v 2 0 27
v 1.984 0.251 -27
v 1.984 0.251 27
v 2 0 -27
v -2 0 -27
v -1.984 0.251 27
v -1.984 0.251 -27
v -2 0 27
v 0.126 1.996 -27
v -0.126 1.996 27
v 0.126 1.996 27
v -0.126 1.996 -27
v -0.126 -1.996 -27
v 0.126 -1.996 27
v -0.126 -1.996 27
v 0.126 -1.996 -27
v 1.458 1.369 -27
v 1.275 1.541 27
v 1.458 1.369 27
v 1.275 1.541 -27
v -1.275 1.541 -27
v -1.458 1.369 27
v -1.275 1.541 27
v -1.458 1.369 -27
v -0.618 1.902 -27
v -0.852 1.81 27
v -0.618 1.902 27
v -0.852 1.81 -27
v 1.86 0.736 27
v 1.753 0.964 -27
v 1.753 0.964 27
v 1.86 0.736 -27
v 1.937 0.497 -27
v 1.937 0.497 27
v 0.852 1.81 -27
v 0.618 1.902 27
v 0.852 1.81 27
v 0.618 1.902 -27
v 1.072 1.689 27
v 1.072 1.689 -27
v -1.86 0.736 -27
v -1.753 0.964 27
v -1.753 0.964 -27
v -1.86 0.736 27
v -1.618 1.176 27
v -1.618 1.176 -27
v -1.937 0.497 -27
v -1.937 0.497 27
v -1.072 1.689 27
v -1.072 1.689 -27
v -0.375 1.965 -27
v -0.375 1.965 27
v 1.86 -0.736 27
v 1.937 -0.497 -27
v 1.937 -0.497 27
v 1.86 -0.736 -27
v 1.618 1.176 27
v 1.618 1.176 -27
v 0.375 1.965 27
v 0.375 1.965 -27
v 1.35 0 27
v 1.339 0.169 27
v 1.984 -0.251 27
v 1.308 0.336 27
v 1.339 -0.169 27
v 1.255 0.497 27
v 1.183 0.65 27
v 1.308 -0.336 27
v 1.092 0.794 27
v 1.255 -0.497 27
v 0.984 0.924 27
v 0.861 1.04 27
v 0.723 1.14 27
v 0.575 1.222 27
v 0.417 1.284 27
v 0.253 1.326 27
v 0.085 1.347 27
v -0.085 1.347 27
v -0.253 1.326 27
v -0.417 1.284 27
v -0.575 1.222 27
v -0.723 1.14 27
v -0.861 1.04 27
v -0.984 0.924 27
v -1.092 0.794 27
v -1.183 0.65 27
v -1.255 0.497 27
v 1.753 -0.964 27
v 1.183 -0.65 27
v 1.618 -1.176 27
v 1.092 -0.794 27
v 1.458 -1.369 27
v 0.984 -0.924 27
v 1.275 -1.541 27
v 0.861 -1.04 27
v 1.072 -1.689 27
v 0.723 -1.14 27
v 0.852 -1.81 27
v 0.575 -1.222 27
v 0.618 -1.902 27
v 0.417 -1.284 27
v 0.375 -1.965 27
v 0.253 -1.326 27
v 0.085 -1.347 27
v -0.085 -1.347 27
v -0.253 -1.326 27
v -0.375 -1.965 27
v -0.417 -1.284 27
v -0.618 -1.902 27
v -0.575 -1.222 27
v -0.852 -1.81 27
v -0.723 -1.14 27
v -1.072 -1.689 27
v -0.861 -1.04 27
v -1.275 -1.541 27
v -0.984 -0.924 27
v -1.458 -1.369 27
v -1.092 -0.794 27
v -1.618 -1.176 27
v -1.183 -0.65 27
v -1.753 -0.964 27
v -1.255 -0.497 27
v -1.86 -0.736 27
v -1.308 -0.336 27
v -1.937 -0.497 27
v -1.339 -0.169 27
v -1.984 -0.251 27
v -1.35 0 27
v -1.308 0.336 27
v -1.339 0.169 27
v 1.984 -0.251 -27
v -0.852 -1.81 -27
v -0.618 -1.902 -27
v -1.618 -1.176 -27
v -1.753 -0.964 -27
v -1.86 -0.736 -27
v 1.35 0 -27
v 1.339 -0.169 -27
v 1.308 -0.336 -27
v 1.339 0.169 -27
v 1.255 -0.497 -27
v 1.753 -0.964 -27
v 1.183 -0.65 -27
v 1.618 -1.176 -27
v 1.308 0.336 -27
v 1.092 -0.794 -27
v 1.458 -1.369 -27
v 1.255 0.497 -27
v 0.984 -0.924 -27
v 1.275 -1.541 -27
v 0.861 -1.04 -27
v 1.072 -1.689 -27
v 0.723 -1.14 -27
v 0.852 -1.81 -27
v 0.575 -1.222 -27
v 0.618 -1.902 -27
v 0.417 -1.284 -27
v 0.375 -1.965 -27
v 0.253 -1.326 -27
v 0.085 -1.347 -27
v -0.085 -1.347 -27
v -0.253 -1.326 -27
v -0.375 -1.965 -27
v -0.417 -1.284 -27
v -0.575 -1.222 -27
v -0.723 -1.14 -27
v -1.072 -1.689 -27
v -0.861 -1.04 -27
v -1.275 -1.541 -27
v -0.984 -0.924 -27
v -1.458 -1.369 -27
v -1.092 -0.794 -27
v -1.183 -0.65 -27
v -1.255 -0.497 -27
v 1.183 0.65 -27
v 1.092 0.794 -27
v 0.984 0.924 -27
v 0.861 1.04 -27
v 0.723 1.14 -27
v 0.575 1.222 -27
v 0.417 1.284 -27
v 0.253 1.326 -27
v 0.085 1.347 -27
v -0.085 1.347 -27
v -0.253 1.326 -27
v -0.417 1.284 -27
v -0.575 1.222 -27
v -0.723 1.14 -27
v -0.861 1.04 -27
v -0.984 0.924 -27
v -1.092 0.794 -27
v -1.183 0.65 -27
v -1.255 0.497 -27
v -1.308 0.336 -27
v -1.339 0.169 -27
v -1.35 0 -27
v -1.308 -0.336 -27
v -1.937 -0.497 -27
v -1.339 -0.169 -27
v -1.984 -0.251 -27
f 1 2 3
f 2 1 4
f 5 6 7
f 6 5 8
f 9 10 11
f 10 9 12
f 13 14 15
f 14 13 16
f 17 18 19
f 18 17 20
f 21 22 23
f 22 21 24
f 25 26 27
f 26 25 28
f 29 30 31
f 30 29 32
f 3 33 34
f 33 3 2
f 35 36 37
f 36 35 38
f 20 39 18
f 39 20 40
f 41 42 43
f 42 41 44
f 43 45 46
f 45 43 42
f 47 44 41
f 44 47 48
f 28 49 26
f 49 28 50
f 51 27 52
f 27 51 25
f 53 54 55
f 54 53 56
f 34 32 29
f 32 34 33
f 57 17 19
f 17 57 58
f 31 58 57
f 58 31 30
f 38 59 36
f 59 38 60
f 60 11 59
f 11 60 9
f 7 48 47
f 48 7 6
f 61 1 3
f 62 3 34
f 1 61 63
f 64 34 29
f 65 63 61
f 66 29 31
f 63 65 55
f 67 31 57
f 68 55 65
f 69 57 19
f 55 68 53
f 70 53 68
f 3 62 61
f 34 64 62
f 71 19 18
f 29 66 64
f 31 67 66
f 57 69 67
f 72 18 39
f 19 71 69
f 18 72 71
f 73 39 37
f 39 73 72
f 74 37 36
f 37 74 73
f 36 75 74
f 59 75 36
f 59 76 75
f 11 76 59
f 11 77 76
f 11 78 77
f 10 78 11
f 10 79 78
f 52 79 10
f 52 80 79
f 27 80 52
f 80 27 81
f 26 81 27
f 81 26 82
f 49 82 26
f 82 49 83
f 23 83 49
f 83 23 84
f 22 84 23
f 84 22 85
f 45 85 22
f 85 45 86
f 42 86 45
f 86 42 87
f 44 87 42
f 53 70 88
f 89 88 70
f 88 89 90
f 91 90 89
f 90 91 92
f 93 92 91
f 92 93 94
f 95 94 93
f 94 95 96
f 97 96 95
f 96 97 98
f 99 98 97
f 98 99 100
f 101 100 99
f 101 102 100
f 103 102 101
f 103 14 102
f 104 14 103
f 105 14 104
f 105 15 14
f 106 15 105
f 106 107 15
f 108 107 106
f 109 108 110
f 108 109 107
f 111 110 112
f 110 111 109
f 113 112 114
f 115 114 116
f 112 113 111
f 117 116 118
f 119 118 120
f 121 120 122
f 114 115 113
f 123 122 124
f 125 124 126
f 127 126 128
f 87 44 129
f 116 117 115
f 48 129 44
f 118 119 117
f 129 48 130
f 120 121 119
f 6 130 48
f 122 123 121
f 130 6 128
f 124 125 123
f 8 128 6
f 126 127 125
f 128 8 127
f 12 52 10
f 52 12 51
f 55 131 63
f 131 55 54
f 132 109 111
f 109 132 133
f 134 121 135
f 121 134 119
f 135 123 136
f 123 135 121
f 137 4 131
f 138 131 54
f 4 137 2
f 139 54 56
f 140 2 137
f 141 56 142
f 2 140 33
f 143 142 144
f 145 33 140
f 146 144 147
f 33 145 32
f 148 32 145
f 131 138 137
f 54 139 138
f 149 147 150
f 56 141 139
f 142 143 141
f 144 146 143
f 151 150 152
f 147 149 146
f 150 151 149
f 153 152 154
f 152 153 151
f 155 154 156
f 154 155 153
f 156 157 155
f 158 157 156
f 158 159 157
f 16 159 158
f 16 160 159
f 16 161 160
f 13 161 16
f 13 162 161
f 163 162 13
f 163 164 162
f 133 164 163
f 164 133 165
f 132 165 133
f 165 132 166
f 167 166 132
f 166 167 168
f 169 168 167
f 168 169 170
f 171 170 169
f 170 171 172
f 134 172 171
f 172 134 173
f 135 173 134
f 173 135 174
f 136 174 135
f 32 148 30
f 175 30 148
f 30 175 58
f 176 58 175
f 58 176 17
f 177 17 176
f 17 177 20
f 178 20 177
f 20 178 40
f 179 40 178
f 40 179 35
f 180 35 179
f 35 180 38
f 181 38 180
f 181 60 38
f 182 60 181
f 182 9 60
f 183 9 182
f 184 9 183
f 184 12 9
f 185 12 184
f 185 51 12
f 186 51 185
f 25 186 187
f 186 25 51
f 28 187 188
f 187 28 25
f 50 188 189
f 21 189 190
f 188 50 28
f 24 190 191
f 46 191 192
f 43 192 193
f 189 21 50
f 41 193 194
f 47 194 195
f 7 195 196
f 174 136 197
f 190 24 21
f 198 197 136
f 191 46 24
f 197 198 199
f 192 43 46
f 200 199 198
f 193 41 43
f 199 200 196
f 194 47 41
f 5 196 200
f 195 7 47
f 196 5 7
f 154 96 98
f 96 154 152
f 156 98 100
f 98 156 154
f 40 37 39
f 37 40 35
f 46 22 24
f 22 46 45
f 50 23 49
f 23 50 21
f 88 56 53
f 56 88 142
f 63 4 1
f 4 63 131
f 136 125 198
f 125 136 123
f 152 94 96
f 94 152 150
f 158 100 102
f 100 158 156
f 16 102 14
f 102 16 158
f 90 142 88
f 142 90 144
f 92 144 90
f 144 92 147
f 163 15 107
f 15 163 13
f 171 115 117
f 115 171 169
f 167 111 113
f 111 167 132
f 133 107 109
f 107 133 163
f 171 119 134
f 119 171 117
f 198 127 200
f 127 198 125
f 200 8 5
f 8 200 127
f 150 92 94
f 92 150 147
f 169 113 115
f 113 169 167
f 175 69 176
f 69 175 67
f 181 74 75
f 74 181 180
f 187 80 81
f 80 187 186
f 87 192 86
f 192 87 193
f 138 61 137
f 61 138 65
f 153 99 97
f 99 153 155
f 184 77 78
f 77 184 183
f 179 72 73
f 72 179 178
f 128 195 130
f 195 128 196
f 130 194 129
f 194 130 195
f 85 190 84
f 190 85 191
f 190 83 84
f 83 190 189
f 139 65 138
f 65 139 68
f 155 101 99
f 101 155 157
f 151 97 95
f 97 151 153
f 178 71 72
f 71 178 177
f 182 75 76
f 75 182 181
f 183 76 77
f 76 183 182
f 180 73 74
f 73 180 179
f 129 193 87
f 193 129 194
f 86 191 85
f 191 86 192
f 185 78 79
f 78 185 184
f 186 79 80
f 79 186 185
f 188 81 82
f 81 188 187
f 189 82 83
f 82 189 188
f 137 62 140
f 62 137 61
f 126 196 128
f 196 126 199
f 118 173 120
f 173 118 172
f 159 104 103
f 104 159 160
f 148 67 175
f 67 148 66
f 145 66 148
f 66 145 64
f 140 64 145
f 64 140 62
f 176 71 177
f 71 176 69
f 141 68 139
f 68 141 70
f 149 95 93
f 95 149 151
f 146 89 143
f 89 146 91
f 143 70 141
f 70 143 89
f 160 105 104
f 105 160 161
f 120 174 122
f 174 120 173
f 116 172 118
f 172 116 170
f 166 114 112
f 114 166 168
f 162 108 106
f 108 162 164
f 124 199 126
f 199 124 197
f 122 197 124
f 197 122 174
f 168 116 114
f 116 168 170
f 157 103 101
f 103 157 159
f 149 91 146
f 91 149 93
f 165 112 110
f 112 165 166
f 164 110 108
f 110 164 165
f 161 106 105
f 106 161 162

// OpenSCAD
$fn = 50;


difference() {
	union() {
		translate(v = [0, 0, -27.0000000000]) {
			cylinder(h = 54, r = 2.0000000000);
		}
	}
	union() {
		translate(v = [0, 0, -100.0000000000]) {
			cylinder(h = 200, r = 1.3500000000);
		}
	}
}
